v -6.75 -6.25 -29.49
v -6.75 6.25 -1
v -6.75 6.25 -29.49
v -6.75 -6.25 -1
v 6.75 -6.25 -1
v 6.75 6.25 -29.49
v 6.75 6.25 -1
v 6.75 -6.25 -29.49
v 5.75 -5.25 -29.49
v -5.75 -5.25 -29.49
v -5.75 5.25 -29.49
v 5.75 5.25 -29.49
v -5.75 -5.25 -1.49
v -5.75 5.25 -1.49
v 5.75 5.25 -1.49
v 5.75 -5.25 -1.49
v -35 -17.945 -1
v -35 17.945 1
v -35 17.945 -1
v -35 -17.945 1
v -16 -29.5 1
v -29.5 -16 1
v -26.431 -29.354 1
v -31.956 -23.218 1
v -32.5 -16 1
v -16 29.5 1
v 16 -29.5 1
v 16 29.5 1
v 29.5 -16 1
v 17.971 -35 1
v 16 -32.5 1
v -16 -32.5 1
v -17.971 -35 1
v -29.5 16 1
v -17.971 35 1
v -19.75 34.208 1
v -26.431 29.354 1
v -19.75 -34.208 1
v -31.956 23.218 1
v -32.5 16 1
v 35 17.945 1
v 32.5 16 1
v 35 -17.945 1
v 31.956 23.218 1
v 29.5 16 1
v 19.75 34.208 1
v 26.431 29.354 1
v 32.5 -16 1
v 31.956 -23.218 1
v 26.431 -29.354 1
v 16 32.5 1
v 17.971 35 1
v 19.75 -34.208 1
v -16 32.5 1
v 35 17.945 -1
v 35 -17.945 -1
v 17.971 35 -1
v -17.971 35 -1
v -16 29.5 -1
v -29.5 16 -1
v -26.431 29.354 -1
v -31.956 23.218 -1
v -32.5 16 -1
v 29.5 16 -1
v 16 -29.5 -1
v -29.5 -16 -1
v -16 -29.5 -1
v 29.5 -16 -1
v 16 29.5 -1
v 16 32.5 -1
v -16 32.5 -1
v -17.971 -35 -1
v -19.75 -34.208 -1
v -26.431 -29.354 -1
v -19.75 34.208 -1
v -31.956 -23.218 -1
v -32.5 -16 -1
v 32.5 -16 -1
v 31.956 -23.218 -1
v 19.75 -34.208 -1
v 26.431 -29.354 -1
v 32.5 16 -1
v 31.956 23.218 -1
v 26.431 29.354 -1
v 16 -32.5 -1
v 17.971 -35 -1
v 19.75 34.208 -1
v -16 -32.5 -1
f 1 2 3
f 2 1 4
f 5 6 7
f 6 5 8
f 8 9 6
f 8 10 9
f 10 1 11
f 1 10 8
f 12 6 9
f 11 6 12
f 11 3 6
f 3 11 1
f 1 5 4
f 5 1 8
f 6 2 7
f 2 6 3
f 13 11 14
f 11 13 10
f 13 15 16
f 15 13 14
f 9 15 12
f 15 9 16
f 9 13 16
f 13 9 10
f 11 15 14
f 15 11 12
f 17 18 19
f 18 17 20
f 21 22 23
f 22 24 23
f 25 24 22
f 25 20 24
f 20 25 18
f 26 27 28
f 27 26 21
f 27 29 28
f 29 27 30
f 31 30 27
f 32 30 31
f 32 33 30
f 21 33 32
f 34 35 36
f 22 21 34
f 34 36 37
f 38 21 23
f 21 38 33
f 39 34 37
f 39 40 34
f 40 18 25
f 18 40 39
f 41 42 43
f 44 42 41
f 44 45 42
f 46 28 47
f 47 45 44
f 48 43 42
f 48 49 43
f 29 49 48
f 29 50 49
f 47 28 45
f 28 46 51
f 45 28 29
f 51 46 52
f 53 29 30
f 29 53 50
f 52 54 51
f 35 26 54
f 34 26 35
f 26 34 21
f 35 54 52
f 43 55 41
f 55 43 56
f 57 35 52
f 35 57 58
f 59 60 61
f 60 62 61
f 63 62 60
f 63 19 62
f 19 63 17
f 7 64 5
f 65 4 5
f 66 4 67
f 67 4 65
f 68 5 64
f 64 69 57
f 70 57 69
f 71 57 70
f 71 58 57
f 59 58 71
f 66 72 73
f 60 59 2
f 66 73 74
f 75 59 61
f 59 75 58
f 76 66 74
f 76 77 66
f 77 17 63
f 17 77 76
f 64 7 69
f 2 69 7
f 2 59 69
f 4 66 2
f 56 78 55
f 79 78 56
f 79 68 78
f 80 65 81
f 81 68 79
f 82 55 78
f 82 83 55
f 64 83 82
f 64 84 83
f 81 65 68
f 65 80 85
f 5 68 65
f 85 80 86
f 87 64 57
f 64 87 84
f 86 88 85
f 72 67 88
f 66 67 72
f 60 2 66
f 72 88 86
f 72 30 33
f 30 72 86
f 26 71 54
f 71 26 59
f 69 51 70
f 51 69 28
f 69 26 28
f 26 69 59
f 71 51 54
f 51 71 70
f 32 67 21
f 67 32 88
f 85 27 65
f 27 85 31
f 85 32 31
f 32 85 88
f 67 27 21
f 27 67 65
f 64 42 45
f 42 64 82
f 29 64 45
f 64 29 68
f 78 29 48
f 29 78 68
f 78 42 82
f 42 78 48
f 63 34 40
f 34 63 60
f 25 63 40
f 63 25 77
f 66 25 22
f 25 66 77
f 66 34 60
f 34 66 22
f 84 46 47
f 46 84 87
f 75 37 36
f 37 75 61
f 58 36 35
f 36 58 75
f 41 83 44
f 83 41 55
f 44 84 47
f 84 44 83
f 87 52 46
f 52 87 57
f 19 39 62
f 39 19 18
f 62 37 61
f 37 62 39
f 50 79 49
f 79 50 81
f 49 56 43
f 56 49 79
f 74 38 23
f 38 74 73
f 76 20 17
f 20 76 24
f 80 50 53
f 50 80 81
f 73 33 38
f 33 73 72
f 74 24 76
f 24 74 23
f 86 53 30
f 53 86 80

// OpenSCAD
pin_width = 11.5;
pin_height = 10.5;
pin_length = 30;
pin_wall = 2;

base = 70;
base_wall = 2;

intersection(){

difference() {
    union() {
        cube([base, base, base_wall], center=true);
        
        translate([0, 0, -(pin_height + pin_wall + base_wall - 0.01)])
        difference() {
            cube([pin_width + pin_wall, pin_height + pin_wall, pin_length], center=true);
            translate([0, 0, -pin_wall])
            cube([pin_width, pin_height, pin_length], center=true);
        }
    }
    translate([0, (base/2) - 4, 0])
    strip();
    
    translate([0, -((base/2) - 4), 0])
    strip();
    
    translate([(base/2) - 4, 0, 0])
    rotate([0, 0, 90])
    strip();
    
    translate([-((base/2) - 4), 0, 0])
    rotate([0, 0, 90])
    strip();
}
cylinder(h=900, d=base+9, center=true);
}


module strip() {
    cube([(base / 2) - 3, 3, base_wall *2], center=true);
}
